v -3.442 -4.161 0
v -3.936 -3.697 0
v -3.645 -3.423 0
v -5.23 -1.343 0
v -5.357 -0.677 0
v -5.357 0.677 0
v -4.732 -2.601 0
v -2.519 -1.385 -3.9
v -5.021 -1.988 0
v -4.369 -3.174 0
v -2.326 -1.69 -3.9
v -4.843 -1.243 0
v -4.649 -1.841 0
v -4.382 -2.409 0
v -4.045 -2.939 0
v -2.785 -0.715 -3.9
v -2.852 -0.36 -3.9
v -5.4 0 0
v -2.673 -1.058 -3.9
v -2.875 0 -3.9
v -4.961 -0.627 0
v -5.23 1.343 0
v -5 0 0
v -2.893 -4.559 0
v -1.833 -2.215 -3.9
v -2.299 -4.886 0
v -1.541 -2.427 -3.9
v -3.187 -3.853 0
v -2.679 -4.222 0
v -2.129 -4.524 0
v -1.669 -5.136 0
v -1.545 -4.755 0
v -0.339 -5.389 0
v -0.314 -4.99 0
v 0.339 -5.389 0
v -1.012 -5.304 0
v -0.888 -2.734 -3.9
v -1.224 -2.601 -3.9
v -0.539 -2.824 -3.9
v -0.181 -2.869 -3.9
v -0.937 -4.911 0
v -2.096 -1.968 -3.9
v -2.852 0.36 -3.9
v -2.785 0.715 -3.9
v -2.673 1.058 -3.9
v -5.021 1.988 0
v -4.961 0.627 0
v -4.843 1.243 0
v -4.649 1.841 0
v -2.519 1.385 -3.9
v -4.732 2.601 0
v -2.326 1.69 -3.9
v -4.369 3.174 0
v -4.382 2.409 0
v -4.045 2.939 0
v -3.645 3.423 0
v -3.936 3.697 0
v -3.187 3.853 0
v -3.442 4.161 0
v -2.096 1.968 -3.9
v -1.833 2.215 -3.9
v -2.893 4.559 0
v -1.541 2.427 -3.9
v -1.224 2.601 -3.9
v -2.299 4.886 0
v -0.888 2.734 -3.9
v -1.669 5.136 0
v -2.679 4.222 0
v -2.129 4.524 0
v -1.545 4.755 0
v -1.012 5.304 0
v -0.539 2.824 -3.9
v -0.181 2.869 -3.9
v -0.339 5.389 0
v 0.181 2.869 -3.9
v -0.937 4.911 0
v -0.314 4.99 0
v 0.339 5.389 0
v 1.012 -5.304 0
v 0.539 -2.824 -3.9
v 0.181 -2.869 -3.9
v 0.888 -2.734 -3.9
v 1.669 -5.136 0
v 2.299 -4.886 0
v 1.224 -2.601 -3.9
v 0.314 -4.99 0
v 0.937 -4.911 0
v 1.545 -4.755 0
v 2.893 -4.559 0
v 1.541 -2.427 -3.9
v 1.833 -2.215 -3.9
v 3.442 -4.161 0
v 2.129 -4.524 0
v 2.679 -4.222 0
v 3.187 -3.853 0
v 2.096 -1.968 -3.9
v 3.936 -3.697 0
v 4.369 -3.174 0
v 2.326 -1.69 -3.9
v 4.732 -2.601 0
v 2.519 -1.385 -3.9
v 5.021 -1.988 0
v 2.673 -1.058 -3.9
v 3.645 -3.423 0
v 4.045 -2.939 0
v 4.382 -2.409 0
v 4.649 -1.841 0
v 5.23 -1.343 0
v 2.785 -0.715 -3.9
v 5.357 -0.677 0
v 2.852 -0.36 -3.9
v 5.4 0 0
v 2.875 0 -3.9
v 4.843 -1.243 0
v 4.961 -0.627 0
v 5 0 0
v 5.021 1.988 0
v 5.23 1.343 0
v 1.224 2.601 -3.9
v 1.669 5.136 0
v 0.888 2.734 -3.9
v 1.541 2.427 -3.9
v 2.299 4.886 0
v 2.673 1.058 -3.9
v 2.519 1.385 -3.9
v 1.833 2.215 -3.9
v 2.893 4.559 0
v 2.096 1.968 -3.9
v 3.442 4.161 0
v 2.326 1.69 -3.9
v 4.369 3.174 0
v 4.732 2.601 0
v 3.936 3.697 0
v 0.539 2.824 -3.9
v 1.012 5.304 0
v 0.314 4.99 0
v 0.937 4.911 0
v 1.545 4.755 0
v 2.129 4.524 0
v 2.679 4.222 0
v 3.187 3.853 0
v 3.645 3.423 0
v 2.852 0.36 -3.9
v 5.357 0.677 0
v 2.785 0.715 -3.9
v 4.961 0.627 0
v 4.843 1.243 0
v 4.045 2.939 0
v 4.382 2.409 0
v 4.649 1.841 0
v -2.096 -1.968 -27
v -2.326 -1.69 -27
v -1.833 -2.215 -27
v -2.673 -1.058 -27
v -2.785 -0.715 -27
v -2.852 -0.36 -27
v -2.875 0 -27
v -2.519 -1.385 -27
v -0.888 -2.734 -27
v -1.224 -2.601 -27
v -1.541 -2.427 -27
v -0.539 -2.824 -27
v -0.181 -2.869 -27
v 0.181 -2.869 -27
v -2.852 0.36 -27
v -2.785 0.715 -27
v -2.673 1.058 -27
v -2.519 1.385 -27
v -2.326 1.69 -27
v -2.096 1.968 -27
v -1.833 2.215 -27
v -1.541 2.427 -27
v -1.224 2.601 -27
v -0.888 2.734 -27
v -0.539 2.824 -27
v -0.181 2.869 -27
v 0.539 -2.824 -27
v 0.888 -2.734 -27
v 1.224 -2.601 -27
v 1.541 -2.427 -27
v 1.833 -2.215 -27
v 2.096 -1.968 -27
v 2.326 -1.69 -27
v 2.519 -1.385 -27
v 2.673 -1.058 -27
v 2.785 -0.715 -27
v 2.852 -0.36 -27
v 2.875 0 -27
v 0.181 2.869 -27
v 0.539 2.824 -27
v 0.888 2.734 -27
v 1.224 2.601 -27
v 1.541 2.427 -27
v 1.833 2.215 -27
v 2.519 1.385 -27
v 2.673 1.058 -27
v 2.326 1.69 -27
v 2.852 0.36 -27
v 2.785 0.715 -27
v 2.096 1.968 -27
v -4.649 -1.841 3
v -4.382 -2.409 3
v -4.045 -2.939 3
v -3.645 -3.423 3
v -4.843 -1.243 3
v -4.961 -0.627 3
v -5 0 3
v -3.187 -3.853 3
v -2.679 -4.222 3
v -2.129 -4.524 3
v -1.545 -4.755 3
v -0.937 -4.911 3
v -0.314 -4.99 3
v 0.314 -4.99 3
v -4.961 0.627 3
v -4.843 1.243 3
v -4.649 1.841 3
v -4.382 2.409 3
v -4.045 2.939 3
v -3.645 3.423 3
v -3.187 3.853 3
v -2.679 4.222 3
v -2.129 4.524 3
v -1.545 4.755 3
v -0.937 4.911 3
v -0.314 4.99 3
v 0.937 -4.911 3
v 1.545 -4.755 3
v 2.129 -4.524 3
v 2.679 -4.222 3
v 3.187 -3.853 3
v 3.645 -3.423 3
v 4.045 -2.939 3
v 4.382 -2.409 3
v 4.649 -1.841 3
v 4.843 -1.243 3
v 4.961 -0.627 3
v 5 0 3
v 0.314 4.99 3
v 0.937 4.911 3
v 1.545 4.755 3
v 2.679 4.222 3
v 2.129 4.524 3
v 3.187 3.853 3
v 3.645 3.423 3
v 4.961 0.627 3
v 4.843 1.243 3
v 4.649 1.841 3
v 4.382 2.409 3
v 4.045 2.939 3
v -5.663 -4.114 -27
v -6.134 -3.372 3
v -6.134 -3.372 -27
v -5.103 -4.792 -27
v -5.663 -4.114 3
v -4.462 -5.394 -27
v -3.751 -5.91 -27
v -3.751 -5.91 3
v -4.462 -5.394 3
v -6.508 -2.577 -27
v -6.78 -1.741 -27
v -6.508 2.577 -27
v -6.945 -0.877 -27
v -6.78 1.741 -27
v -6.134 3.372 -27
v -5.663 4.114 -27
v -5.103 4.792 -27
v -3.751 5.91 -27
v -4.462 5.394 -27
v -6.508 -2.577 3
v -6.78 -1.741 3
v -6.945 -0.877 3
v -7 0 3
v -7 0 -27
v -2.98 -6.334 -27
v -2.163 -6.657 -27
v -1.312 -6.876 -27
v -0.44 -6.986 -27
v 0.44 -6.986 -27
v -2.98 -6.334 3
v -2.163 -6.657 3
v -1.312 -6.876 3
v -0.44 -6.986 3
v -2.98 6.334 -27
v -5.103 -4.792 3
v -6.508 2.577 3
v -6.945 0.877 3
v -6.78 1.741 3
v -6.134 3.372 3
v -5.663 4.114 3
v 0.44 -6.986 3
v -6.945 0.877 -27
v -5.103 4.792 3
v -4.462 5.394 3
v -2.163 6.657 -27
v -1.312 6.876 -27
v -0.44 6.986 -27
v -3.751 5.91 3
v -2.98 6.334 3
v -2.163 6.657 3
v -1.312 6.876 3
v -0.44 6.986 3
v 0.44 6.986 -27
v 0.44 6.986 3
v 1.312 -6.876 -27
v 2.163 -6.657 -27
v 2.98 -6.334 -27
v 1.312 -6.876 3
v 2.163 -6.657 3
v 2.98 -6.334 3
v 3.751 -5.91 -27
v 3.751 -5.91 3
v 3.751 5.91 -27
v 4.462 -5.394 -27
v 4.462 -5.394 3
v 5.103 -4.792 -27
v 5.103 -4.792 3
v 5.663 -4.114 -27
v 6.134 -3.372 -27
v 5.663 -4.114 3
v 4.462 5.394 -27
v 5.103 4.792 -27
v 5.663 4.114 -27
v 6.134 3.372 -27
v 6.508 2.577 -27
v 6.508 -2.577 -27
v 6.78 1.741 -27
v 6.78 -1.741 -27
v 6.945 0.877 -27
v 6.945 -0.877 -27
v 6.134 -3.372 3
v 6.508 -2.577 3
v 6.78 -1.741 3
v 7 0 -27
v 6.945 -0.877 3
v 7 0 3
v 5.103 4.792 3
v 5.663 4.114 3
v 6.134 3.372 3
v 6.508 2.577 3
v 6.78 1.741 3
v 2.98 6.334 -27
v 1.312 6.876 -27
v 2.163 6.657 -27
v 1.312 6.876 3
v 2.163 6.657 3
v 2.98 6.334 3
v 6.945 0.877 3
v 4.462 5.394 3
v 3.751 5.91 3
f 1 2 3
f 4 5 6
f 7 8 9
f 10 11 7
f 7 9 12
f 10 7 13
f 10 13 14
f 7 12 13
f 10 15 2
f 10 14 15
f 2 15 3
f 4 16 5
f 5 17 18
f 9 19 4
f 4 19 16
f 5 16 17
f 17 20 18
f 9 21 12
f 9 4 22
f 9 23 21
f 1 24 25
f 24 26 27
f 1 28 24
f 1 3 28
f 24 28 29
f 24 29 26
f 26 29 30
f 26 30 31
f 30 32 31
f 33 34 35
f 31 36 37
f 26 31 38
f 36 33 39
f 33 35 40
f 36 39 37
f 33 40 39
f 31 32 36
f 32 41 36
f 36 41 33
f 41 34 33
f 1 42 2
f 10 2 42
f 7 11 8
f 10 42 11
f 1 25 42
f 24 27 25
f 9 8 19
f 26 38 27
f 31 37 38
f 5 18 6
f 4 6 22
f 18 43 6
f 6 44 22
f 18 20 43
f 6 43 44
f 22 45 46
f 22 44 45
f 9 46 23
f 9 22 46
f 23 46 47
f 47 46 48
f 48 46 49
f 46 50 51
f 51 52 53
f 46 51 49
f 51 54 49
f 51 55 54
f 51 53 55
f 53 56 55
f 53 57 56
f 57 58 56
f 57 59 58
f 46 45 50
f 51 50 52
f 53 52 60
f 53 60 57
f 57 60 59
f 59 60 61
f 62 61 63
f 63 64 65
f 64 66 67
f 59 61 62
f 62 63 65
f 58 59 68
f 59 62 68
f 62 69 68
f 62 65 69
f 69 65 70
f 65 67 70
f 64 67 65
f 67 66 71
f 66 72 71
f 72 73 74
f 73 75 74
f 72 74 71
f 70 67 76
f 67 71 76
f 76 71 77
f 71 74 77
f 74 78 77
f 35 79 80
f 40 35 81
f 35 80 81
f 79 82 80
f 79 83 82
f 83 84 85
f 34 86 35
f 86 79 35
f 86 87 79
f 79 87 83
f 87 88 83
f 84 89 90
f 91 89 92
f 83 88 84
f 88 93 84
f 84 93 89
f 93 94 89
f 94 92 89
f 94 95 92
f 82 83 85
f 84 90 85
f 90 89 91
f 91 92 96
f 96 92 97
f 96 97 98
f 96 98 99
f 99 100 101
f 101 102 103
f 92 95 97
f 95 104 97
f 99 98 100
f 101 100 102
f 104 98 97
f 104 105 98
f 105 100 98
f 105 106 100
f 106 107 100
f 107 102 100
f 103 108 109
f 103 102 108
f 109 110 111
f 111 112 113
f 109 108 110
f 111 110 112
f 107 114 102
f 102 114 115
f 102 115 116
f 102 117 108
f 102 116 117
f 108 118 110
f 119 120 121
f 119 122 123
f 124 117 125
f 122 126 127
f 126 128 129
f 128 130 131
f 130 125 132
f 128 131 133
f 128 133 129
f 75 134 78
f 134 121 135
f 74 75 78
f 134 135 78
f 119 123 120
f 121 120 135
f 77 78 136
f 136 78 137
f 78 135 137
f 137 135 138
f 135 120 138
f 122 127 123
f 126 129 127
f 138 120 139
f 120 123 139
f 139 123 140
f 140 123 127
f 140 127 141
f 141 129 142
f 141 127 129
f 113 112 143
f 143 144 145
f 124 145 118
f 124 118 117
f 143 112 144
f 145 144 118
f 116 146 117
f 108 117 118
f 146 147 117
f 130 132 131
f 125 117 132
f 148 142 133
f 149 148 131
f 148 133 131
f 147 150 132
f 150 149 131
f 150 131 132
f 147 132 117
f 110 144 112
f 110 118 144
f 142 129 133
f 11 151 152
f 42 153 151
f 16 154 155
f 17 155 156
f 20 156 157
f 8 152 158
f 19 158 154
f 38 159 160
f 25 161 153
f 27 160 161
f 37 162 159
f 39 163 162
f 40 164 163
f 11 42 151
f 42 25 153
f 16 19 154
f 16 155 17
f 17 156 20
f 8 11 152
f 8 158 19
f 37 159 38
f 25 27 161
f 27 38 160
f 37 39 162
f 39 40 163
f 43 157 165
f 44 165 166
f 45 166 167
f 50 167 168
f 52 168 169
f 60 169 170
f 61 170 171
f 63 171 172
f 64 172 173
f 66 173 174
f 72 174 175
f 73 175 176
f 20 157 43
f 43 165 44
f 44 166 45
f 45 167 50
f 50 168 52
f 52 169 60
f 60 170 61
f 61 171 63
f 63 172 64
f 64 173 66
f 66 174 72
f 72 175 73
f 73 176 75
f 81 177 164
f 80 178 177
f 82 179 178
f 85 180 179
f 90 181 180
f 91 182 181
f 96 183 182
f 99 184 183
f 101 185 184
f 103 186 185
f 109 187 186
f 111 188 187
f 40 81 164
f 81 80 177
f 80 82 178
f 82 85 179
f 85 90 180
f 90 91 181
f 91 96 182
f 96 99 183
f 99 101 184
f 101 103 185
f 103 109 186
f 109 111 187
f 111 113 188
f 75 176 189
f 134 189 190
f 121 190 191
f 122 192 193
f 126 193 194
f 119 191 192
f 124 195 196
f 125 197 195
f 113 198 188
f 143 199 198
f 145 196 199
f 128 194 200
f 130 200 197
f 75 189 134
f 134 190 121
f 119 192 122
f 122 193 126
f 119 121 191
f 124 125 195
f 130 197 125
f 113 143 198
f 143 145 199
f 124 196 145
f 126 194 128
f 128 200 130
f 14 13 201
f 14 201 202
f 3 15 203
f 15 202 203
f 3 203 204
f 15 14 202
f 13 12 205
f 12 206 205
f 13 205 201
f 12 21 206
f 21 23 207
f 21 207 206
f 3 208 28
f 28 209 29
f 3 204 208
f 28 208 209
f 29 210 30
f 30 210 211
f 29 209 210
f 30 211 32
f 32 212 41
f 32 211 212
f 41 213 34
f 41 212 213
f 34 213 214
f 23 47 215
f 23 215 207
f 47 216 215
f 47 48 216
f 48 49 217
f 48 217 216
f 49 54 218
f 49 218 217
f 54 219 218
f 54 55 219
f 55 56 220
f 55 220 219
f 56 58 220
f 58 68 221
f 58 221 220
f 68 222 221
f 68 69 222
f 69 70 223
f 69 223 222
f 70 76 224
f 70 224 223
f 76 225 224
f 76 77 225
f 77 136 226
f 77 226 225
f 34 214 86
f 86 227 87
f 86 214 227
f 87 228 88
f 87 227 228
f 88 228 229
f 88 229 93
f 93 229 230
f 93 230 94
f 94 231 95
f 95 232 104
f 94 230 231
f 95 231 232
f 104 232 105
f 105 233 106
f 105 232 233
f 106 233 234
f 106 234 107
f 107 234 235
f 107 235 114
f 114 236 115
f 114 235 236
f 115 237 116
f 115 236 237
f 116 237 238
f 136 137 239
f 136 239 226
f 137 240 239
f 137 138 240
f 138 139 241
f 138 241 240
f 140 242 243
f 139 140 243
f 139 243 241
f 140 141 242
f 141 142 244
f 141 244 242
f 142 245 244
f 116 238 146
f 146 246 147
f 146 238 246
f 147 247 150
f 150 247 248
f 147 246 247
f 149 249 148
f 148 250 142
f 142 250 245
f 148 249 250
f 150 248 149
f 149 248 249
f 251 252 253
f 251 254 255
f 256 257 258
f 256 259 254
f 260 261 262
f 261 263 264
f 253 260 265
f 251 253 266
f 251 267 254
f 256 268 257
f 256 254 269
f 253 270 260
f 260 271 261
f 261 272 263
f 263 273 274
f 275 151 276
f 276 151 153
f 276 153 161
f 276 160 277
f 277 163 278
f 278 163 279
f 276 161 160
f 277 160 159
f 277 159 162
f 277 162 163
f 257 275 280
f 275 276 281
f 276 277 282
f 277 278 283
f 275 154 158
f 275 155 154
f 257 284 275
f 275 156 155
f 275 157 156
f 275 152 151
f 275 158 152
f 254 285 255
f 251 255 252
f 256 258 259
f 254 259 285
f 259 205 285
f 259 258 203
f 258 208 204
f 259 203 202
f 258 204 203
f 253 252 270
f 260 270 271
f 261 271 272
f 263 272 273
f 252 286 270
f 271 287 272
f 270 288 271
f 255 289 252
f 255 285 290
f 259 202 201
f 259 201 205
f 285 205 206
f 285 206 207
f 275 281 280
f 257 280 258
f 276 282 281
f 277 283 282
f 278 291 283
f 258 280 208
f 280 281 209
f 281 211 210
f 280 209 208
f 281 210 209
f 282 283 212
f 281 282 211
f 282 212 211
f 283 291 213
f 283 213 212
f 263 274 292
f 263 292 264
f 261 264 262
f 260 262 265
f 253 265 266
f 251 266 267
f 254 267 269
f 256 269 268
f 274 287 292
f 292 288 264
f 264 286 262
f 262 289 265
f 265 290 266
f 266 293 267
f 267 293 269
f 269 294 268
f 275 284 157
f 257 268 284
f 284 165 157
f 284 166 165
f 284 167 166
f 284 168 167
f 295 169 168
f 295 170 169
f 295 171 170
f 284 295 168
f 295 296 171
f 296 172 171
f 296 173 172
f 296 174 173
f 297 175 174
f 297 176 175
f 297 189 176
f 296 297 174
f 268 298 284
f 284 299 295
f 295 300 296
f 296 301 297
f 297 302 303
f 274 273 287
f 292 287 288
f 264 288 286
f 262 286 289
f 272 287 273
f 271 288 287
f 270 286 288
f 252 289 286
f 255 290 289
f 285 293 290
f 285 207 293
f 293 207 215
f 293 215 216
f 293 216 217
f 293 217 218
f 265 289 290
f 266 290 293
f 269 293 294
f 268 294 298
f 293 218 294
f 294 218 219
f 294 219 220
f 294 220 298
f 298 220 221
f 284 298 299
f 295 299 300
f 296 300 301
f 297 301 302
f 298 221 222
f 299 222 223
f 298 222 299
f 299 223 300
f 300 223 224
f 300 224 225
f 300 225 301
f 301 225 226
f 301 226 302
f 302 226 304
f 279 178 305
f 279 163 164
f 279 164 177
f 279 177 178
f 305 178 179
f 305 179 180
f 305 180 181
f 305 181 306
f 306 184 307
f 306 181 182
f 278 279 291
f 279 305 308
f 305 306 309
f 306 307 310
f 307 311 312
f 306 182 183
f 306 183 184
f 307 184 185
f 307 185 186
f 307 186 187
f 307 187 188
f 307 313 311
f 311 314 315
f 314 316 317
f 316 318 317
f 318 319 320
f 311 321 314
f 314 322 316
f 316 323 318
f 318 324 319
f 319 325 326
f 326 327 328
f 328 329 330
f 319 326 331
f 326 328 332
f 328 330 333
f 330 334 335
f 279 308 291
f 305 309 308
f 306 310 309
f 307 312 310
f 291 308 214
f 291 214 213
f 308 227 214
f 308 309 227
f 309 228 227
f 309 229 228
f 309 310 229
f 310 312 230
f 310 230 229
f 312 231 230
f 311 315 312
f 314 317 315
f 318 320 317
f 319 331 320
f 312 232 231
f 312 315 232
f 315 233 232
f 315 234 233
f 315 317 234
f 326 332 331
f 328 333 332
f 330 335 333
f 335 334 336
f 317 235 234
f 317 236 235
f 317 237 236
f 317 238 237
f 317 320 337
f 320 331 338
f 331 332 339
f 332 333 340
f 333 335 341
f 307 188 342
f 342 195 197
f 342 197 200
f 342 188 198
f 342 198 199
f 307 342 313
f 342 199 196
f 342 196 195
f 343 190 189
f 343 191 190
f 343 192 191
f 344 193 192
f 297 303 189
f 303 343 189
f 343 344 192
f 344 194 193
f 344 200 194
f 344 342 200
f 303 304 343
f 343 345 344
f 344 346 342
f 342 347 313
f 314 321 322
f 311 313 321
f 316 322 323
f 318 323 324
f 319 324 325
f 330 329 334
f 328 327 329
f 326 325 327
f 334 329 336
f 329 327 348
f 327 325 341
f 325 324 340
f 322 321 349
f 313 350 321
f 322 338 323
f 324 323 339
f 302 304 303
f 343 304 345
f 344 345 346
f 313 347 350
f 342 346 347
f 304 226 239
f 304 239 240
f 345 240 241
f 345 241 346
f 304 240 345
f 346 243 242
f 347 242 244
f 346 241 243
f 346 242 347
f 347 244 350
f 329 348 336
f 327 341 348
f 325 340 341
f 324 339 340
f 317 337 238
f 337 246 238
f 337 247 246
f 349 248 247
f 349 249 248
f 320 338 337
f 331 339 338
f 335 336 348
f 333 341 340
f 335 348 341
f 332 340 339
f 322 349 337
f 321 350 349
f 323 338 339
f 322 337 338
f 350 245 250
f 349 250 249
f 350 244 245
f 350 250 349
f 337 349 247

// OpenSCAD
$fn = 50;

difference() {
	union() {
		translate(v = [0, 0, -27.0]) {
			cylinder(h = 30, r = 7.0);
		}
	}
	union() {
		translate(v = [0, 0, 0]) {
			rotate(a = [0, 0, 0]) {
				difference() {
					union() {
						translate(v = [0, 0, -30.0]) {
							cylinder(h = 30, r = 2.6);
						}
						translate(v = [0, 0, -3.9]) {
							cylinder(h = 3.9, r1 = 2.875, r2 = 5.4);
						}
						translate(v = [0, 0, -30.0]) {
							cylinder(h = 30, r = 2.875);
						}
						translate(v = [0, 0, -30.0]) {
							cylinder(h = 30, r = 2.6);
						}
					}
					union();
				}
			}
		}
		#cylinder(h = 3, r = 5.0);
	}
}
